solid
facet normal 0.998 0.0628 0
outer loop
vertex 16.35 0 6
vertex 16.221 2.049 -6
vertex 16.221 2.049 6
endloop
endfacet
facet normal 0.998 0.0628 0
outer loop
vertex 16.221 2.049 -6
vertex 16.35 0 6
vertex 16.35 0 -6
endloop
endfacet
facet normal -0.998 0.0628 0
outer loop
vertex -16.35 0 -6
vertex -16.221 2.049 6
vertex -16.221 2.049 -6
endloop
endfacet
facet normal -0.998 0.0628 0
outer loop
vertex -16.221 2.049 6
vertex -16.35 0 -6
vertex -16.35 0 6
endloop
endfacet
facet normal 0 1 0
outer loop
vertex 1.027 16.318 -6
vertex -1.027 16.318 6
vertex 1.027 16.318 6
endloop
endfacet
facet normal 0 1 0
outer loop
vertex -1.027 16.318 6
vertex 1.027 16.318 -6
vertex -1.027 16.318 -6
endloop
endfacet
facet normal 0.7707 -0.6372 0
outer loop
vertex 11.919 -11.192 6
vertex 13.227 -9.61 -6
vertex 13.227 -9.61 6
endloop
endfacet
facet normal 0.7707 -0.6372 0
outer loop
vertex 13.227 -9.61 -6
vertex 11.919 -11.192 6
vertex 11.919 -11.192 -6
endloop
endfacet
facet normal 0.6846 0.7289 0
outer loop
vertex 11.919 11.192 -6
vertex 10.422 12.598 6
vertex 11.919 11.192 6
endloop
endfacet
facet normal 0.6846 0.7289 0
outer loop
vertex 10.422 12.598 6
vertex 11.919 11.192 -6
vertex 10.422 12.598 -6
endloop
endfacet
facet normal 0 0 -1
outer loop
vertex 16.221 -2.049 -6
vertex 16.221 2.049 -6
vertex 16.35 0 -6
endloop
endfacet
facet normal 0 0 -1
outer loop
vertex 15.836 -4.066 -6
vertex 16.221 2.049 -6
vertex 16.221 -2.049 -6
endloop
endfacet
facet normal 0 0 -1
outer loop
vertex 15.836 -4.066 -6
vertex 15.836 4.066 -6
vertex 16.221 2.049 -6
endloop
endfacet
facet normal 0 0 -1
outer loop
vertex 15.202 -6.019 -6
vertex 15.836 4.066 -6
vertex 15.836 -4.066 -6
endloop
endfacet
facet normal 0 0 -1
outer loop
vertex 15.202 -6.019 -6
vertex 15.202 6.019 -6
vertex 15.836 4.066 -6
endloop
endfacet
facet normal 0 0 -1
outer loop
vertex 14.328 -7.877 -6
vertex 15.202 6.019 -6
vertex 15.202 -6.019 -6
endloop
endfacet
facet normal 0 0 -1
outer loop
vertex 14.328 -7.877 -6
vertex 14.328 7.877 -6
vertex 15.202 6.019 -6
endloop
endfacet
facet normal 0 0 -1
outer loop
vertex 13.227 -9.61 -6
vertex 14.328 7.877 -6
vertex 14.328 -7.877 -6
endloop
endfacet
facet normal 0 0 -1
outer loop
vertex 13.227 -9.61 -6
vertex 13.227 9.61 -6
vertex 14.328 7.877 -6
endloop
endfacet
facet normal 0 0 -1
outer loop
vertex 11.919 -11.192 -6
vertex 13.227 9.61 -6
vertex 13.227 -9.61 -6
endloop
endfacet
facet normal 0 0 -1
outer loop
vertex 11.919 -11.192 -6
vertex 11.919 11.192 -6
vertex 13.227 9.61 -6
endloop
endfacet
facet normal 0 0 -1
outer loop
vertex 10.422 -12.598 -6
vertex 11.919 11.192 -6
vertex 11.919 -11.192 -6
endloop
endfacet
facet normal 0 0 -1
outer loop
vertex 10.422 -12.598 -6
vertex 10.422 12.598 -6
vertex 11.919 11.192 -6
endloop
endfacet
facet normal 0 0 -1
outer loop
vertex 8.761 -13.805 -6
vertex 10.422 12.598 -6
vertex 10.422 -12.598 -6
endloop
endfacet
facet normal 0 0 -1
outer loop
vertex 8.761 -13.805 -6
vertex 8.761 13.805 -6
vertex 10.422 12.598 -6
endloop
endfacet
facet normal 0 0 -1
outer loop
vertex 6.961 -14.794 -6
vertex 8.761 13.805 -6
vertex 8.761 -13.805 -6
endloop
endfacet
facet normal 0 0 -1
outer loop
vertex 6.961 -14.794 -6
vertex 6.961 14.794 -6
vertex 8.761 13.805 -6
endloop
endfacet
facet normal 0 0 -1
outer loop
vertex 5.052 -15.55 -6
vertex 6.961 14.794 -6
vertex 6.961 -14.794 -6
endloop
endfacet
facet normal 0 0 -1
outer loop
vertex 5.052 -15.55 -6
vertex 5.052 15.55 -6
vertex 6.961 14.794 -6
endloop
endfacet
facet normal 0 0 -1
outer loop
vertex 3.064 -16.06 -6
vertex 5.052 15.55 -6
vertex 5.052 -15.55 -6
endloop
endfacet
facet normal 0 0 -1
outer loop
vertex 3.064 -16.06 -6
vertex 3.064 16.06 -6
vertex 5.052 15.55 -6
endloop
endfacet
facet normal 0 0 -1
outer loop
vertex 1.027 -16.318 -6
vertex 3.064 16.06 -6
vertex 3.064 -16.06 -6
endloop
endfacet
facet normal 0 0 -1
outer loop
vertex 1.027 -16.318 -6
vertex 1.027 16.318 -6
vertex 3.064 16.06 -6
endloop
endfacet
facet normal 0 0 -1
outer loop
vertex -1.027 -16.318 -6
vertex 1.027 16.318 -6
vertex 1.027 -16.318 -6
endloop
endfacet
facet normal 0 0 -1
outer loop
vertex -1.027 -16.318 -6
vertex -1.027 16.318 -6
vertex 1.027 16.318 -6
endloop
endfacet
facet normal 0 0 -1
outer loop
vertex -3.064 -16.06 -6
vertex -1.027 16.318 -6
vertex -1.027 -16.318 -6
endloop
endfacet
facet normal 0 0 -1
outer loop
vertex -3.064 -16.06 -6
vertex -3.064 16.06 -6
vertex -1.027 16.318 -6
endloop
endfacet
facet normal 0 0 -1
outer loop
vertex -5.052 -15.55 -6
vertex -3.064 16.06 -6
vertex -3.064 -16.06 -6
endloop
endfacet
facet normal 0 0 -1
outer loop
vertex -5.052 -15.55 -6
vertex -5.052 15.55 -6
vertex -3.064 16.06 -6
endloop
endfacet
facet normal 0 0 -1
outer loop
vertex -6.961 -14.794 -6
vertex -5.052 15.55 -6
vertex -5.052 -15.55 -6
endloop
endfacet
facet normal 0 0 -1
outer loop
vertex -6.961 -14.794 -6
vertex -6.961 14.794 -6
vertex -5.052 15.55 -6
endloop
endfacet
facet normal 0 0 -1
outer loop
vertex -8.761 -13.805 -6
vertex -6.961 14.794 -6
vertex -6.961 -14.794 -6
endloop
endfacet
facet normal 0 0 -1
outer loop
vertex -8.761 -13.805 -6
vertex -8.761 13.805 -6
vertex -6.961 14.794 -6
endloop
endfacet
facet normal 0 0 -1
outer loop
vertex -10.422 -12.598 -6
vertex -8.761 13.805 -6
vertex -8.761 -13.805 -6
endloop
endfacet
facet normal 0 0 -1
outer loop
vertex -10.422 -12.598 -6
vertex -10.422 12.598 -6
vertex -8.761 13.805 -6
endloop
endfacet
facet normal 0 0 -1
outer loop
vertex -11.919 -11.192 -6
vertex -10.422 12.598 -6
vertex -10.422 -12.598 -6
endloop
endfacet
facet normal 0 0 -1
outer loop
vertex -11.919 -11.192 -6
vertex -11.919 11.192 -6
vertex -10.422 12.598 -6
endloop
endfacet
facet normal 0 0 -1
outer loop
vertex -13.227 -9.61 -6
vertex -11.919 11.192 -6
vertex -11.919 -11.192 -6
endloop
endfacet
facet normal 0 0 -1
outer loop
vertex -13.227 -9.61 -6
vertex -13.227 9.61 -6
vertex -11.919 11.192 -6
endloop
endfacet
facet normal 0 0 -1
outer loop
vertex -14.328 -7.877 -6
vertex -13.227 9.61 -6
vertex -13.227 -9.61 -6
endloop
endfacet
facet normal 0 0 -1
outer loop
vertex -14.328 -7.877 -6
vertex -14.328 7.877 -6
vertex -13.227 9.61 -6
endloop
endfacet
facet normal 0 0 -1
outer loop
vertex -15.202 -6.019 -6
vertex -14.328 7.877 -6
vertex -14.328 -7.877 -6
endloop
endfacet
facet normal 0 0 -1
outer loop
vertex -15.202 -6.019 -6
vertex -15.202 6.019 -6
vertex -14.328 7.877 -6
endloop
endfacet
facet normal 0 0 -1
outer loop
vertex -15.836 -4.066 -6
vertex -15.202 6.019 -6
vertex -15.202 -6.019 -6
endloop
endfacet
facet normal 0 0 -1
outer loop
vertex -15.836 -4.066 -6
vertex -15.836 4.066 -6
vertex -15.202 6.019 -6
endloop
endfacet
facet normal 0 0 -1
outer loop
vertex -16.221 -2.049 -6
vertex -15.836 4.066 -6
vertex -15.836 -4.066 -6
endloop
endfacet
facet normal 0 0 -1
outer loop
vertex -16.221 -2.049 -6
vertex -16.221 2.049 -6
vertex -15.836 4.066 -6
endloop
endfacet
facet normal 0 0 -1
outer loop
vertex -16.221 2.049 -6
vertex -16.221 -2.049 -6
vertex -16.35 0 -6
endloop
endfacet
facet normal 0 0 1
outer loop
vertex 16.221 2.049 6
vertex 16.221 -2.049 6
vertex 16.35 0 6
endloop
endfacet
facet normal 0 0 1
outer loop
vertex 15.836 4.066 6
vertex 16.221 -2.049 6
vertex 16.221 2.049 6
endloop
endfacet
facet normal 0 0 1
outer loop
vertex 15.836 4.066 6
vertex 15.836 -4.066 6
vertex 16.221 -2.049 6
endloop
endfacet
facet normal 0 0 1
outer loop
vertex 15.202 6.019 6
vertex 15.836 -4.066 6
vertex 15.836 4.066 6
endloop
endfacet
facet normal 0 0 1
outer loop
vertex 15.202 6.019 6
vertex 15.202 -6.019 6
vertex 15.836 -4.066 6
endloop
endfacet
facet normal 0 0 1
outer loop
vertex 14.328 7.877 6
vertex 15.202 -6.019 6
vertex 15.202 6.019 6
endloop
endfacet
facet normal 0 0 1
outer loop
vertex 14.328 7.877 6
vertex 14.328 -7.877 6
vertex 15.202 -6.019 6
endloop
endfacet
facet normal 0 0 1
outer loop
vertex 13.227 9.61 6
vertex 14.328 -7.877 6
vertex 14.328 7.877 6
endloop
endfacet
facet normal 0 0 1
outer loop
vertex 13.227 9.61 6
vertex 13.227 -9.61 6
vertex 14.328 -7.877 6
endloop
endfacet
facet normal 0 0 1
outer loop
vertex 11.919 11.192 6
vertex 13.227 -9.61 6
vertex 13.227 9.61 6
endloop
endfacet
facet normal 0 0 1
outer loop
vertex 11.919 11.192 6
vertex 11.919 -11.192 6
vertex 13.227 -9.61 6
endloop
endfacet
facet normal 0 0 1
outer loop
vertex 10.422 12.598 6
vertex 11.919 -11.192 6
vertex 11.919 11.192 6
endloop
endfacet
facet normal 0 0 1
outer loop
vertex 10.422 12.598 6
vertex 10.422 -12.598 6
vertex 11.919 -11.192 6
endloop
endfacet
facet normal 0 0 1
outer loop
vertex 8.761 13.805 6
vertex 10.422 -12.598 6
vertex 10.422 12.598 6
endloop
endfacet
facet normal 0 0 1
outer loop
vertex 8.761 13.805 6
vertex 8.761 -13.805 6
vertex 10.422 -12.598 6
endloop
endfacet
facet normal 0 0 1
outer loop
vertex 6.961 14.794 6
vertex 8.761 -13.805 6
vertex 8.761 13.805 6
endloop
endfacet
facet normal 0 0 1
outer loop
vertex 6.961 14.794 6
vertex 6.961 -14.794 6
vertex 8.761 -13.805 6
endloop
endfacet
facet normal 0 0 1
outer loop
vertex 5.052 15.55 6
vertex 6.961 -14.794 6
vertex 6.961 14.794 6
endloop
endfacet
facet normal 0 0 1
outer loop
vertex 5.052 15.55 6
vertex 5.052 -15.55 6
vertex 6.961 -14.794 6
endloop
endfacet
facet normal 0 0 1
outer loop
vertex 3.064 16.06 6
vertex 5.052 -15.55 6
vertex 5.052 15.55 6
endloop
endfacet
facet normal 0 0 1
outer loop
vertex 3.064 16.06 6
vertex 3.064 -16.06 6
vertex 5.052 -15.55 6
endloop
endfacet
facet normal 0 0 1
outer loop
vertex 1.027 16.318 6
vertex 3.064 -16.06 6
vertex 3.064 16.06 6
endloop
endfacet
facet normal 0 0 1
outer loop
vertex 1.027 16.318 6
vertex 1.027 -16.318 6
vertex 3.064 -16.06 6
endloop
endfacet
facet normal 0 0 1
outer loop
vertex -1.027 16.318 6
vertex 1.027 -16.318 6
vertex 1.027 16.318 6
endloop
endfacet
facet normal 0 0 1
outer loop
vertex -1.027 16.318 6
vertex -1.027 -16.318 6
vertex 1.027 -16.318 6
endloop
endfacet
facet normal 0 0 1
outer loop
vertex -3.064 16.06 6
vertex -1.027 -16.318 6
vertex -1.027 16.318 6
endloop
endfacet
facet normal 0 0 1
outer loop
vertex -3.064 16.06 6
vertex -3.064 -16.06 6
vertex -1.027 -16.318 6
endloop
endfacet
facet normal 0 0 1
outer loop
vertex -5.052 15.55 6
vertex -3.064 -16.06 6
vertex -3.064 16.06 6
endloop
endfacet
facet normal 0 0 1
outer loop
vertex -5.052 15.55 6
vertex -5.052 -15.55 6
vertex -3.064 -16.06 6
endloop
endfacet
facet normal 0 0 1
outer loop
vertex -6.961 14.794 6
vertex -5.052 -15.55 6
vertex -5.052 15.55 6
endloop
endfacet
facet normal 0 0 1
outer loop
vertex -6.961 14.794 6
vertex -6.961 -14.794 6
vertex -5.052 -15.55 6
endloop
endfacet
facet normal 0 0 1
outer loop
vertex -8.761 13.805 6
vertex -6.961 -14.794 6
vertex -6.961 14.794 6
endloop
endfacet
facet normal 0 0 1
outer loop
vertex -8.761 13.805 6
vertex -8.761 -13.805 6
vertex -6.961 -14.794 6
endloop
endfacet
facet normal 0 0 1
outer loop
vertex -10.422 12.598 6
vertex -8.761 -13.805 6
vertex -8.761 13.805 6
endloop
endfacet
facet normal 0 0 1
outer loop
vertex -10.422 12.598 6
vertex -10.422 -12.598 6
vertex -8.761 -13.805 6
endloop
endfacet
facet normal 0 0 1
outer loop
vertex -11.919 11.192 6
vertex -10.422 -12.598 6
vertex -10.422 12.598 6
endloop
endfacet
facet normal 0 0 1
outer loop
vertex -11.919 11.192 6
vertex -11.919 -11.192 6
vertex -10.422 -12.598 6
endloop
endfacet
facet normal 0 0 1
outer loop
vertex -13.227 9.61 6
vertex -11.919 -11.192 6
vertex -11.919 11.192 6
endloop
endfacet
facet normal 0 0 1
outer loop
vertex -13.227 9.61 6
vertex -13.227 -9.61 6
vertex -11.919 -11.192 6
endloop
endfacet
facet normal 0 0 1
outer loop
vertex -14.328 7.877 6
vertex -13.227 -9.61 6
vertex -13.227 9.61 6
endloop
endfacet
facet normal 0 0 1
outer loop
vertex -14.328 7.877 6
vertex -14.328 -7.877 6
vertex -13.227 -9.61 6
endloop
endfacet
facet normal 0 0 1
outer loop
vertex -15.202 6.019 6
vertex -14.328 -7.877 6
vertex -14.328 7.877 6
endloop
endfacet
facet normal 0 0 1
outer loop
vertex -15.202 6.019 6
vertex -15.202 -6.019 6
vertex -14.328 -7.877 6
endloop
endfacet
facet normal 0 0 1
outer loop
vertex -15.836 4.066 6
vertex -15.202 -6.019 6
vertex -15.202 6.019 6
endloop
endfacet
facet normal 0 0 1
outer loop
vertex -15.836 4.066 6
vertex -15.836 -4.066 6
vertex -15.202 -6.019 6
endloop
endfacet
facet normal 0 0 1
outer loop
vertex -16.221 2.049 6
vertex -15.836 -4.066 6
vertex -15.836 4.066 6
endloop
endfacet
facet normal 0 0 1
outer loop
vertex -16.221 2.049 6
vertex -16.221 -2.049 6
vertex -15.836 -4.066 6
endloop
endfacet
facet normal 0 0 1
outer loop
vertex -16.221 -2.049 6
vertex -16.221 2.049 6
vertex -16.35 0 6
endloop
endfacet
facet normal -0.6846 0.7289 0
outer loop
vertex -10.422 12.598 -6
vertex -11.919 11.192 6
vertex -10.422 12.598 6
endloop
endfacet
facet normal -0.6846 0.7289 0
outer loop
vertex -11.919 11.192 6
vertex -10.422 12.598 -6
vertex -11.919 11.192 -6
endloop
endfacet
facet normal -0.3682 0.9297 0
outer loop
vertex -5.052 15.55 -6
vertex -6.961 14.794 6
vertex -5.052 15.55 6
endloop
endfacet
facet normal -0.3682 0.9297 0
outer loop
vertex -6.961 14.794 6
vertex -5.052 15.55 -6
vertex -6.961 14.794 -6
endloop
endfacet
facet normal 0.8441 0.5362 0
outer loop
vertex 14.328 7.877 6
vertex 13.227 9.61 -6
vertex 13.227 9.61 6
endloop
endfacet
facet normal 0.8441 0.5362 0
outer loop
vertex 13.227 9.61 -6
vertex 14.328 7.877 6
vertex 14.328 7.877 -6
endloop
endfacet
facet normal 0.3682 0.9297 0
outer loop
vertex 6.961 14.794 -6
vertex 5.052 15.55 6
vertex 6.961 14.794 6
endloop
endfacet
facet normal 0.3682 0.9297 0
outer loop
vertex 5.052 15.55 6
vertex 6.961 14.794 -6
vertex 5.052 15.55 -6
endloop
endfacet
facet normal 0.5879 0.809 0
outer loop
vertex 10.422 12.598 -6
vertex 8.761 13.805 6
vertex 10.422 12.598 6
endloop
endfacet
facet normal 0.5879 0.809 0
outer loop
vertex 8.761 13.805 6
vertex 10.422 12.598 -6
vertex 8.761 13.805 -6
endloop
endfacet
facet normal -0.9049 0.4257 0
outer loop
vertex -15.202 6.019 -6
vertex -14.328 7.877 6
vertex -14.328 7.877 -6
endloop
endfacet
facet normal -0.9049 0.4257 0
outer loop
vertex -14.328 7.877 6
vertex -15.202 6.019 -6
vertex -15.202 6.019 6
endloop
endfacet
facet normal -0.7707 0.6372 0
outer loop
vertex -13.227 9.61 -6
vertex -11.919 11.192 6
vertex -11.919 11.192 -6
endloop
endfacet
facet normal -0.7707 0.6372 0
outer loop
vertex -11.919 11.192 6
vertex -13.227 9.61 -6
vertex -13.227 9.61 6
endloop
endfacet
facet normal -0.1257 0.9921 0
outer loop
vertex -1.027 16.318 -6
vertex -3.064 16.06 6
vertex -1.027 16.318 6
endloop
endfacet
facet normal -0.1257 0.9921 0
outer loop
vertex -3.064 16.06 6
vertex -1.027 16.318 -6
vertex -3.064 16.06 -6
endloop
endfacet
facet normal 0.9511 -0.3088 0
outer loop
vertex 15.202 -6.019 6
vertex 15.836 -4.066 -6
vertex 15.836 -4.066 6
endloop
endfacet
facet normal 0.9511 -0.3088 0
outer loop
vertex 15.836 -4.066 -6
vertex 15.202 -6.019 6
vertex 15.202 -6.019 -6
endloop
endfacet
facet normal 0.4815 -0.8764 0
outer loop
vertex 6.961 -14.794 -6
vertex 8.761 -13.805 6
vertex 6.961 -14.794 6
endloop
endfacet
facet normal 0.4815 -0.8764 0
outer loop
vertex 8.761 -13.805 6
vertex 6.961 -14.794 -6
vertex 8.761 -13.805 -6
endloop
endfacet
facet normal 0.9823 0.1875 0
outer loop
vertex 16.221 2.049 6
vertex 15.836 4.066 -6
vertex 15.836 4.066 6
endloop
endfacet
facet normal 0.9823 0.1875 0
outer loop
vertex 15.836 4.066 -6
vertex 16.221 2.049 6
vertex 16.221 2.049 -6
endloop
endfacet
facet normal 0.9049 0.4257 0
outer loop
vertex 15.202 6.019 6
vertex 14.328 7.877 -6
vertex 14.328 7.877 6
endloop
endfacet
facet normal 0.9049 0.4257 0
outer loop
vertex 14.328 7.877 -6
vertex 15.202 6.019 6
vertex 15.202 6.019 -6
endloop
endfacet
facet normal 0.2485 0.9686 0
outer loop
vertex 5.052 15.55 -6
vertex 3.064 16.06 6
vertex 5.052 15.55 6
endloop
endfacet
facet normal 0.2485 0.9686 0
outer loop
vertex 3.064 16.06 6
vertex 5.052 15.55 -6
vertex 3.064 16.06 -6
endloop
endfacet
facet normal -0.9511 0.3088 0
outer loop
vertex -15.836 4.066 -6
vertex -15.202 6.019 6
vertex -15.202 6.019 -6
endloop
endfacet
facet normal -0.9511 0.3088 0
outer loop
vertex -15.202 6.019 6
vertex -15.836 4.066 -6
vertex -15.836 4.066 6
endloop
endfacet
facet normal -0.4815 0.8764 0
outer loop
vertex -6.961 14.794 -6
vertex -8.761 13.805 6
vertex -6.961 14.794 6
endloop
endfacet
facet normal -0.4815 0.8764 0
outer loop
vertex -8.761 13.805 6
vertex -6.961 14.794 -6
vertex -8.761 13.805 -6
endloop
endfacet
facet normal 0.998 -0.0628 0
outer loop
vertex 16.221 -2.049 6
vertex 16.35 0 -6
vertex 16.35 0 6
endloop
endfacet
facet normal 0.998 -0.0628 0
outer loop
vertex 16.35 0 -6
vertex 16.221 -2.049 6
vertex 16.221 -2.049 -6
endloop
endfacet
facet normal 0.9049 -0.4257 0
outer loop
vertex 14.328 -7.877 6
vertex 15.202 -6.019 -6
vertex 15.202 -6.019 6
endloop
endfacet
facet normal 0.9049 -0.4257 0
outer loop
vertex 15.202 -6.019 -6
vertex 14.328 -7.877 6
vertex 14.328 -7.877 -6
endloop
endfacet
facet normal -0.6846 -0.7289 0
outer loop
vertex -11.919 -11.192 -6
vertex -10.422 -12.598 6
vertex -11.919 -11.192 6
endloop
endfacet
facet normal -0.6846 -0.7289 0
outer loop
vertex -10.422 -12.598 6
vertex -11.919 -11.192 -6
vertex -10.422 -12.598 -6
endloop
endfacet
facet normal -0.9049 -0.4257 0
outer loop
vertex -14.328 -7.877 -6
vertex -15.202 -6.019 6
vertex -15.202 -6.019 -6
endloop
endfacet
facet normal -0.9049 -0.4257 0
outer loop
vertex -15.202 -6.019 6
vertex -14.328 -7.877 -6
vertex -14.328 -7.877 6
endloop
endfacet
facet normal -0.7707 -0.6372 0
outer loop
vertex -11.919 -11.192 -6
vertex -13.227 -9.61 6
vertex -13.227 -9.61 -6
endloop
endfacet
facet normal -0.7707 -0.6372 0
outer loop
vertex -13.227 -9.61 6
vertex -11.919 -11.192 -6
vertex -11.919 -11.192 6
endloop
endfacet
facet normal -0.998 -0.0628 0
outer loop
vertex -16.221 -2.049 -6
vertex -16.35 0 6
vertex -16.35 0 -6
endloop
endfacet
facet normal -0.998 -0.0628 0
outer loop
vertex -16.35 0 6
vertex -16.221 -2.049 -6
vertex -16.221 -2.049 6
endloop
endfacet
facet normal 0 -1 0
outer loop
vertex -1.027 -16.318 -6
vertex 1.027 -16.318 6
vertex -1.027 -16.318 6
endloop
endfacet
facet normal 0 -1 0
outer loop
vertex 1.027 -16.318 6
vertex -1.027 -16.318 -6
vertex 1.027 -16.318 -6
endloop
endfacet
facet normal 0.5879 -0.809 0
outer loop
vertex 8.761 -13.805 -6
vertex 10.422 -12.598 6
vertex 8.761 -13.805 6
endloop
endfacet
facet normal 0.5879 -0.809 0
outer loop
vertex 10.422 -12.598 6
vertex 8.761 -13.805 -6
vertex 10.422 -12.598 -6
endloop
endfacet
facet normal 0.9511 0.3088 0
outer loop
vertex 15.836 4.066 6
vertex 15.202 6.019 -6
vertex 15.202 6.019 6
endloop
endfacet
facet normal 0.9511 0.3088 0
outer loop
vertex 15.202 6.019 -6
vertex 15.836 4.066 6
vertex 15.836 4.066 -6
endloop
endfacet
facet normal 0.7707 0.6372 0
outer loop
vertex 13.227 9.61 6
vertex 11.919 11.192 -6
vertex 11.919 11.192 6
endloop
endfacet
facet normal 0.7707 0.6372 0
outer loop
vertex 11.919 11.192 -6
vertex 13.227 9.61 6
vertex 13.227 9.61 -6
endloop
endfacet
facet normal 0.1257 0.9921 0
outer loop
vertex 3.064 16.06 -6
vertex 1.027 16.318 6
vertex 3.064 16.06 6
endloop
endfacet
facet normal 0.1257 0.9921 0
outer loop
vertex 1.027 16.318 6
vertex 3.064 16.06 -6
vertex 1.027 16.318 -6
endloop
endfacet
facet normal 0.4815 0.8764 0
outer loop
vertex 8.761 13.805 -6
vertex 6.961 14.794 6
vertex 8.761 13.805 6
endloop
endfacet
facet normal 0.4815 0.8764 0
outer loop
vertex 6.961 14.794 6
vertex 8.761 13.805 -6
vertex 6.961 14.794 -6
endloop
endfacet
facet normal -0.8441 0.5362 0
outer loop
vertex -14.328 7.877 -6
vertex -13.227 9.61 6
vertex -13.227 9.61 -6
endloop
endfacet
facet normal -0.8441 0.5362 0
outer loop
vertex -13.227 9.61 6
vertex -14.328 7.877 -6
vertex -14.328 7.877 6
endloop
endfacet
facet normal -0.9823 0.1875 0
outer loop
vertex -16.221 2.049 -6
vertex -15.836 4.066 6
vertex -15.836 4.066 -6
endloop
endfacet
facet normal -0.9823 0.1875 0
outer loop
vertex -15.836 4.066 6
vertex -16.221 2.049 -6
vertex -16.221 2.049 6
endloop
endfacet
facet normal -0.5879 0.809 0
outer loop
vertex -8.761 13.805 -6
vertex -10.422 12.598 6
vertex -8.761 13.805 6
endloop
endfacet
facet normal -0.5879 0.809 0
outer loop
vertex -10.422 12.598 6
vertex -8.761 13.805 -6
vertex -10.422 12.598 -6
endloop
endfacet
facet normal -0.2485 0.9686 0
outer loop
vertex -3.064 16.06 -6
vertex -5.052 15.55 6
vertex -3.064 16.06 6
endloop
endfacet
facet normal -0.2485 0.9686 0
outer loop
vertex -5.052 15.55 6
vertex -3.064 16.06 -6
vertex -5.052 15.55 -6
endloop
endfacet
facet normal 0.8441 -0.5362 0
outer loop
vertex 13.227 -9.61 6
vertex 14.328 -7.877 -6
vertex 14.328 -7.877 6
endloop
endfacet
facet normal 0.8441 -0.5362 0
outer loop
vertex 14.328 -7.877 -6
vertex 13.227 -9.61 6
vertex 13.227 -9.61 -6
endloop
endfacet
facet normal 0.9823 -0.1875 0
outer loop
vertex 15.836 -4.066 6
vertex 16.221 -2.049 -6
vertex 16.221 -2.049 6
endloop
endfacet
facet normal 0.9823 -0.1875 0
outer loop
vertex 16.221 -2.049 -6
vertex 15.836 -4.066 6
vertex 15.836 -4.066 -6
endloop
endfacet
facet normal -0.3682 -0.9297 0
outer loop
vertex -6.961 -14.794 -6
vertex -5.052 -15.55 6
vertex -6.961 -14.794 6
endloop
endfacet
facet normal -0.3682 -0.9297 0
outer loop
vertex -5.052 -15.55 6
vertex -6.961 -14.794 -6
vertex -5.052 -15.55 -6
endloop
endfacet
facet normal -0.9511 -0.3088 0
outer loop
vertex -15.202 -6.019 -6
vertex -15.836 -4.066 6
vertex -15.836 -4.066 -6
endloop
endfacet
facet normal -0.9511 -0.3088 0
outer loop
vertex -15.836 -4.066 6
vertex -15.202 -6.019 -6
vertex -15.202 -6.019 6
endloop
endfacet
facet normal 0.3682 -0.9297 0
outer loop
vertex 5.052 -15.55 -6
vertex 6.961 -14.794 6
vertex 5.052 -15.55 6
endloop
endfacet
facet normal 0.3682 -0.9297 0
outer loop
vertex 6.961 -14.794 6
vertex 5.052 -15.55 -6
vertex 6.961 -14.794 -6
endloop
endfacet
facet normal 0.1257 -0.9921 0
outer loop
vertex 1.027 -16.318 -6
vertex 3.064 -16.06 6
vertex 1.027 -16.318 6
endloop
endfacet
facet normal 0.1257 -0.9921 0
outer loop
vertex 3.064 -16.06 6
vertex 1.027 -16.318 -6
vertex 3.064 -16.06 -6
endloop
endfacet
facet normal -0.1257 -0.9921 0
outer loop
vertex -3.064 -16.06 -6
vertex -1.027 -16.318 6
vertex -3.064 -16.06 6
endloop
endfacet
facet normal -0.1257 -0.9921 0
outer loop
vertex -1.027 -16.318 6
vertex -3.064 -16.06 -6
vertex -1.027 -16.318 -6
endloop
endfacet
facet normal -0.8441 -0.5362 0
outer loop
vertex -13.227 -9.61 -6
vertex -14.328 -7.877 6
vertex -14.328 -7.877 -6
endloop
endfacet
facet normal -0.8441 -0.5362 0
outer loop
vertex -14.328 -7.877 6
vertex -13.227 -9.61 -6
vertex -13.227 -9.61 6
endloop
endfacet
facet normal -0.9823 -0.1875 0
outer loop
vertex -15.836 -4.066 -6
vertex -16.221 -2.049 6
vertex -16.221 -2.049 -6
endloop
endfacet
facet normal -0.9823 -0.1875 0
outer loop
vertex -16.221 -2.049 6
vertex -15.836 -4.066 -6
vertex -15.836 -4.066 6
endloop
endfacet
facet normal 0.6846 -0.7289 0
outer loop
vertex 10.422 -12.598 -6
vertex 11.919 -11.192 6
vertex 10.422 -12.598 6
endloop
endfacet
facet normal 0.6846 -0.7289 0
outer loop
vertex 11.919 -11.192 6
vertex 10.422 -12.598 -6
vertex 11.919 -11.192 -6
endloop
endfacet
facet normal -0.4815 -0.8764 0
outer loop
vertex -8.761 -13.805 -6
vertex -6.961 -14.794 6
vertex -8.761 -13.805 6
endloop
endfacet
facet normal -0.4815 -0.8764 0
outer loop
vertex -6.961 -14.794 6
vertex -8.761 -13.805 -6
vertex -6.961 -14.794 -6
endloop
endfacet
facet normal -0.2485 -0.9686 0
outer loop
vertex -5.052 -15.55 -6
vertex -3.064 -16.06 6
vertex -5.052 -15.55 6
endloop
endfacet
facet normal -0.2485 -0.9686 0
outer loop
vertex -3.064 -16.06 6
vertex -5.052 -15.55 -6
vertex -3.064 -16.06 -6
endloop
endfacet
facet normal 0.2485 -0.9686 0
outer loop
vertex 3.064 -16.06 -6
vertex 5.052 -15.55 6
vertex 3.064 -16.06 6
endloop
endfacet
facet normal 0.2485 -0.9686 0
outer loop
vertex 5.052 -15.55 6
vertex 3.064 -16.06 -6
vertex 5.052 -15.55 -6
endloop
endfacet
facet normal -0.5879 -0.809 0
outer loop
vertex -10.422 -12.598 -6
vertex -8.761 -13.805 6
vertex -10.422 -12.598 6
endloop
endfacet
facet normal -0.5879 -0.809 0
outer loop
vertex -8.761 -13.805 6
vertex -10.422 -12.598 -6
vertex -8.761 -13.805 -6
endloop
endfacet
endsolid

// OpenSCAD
$fn = 50;


difference() {
	union() {
		translate(v = [0, 0, -6.0000000000]) {
			cylinder(h = 12, r = 16.3500000000);
		}
	}
	union() {
		translate(v = [0, 0, -100.0000000000]) {
			cylinder(h = 200, r = 0);
		}
	}
}
